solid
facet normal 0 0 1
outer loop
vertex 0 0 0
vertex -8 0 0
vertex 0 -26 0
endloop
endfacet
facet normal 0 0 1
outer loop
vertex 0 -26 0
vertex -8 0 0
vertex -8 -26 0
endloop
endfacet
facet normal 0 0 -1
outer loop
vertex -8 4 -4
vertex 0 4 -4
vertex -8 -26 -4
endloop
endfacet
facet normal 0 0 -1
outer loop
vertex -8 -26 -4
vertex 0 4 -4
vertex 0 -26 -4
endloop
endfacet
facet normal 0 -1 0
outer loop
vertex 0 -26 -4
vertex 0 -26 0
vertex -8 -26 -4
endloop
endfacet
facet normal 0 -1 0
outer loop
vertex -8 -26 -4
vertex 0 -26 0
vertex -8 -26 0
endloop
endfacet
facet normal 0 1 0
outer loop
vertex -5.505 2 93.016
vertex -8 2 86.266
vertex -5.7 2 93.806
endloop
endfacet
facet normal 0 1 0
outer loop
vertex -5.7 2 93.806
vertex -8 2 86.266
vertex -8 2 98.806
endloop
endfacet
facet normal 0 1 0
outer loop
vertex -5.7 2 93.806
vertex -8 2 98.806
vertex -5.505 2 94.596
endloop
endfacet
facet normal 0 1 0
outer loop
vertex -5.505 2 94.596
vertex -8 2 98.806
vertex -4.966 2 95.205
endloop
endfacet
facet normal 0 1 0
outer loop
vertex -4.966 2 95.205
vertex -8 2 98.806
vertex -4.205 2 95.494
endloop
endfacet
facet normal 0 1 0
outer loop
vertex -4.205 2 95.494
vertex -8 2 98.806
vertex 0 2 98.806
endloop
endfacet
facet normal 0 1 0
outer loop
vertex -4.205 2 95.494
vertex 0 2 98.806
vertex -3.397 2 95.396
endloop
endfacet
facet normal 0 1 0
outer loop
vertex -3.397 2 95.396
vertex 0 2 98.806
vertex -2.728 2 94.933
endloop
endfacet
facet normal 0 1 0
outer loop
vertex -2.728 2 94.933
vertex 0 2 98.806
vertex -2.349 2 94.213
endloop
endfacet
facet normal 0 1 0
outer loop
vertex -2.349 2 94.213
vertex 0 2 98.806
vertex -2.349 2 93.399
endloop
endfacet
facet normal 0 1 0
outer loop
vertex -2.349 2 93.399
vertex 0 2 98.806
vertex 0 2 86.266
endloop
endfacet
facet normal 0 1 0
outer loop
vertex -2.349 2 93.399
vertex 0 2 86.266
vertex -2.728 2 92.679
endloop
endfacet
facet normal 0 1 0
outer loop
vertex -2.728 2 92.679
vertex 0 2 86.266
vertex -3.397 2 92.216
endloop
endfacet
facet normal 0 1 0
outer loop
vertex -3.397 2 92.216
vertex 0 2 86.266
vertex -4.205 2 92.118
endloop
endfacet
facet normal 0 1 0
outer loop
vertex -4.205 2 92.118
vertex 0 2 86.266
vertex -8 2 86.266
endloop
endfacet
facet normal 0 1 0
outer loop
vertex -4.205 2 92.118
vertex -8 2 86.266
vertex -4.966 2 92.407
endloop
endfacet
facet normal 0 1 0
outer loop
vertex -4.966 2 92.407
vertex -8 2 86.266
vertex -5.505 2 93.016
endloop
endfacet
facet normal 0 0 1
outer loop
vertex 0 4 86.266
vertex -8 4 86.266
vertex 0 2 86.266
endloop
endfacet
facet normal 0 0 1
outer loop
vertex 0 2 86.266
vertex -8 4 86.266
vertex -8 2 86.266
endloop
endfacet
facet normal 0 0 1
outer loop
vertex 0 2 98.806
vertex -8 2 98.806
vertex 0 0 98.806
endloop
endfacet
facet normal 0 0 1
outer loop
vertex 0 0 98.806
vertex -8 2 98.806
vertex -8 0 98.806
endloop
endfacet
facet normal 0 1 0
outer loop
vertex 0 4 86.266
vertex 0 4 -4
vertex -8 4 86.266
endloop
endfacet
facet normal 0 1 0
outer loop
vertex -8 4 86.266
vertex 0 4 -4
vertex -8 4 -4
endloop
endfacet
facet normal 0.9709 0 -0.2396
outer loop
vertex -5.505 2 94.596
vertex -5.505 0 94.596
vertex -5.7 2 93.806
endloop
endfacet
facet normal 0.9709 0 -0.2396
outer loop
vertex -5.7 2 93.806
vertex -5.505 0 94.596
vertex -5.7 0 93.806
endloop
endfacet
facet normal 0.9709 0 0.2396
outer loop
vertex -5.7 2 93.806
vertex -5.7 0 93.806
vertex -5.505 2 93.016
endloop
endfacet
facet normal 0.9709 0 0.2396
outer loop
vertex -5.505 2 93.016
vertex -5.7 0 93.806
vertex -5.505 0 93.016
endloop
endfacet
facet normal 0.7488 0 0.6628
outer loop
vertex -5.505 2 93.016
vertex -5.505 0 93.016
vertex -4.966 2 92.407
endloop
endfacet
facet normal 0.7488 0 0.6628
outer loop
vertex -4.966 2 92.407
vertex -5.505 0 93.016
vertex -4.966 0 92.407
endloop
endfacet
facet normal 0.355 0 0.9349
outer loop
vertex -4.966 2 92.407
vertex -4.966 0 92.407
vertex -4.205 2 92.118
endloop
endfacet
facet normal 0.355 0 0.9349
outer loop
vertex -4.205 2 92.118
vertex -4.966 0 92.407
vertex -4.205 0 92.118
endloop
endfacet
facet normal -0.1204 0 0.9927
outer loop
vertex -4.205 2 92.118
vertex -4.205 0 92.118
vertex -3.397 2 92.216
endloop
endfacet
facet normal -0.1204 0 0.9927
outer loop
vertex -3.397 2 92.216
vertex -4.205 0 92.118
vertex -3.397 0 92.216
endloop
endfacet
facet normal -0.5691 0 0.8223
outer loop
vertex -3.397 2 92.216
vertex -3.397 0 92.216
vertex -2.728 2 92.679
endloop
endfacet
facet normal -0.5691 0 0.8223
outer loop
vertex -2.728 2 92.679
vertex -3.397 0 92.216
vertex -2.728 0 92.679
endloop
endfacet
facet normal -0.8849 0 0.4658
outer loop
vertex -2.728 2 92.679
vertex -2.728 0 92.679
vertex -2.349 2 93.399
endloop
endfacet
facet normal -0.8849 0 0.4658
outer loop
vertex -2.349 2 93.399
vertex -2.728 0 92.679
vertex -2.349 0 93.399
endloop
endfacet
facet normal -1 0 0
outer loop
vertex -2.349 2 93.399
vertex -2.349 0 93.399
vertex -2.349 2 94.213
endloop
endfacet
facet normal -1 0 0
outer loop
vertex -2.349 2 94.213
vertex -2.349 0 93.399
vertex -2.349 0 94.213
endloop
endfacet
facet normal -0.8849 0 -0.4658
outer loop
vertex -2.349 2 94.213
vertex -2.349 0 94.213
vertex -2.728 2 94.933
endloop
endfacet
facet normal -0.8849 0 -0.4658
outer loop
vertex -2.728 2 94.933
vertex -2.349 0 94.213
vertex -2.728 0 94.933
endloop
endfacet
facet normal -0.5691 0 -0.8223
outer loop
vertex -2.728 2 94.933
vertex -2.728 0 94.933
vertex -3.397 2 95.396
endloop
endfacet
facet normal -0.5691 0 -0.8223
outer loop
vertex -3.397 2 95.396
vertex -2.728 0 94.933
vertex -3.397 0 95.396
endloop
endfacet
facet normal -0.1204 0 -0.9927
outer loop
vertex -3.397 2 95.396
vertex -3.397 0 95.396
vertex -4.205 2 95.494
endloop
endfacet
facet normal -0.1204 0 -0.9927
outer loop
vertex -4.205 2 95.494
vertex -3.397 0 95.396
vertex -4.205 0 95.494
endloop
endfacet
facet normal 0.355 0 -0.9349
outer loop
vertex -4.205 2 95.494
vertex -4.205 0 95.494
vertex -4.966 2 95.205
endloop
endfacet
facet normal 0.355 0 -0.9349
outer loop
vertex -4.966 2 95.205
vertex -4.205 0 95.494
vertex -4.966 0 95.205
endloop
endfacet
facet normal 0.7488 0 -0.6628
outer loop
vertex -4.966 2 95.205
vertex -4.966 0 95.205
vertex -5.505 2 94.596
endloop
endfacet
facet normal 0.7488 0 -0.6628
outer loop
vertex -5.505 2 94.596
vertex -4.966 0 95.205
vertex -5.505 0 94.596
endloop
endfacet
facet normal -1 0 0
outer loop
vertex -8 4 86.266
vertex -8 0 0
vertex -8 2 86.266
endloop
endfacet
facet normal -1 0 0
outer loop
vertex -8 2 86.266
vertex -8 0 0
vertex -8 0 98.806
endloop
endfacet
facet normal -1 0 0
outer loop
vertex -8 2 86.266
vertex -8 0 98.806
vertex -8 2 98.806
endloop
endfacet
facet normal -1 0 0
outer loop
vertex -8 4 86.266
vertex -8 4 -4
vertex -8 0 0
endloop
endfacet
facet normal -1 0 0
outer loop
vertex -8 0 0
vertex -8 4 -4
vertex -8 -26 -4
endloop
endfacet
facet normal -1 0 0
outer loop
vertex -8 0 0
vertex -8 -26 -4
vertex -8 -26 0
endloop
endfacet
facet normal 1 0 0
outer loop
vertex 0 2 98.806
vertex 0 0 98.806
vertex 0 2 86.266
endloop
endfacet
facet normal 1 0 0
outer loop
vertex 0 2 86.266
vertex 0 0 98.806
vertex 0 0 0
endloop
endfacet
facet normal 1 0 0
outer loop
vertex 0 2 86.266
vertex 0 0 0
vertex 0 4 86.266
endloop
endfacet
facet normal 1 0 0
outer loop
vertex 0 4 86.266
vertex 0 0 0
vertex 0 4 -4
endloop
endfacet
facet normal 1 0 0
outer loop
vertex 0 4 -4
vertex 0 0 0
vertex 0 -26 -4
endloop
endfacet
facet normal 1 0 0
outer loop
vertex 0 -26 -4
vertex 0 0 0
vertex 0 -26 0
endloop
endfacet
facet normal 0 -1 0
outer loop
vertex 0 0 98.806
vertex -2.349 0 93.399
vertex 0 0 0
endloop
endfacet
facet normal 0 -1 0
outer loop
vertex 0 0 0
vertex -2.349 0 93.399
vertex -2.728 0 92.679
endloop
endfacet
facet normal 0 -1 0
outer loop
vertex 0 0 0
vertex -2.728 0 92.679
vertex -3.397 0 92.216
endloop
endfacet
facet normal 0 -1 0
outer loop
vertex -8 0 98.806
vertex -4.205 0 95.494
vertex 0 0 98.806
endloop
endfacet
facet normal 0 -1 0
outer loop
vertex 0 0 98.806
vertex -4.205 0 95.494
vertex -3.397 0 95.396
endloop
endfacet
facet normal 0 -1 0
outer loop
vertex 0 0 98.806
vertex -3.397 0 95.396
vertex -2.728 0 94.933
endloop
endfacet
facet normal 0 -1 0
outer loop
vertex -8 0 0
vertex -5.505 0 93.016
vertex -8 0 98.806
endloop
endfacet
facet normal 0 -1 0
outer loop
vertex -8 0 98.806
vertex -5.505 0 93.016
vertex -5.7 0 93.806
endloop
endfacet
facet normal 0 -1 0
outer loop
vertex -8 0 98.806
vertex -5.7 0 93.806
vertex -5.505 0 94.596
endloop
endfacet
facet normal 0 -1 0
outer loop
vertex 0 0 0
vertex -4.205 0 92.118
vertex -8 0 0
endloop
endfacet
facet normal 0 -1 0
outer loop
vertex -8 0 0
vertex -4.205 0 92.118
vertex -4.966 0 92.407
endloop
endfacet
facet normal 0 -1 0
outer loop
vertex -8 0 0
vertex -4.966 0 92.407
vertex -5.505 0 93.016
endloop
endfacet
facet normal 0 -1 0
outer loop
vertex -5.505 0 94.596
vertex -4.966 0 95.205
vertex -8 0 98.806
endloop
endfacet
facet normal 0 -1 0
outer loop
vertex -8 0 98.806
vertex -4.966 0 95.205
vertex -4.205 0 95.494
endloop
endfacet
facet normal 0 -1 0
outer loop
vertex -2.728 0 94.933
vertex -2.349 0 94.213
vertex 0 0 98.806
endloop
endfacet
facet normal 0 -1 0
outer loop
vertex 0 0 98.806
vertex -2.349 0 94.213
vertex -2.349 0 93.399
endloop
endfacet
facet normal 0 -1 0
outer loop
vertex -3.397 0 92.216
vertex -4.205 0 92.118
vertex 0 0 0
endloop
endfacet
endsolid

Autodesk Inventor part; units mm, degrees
ref_plane "YZ Plane" through (0, 0, 0) normal (1, 0, 0) x (0, 1, 0)
ref_plane "XZ Plane" through (0, 0, 0) normal (0, 1, 0) x (-1, 0, 0)
ref_plane "XY Plane" through (0, 0, 0) normal (0, 0, 1) x (1, 0, 0)
sketch "Sketch1" plane through (0, 0, 0) normal (0, 1, 0) x (-1, 0, 0)
  line L0 (0, 0) -> (8, 0)
  line L1 (8, 0) -> (8, 98.806)
  line L2 (8, 98.806) -> (0, 98.806)
  line L3 (0, 98.806) -> (0, 0)
  line L4 (4, 0) -> (4, 98.806)
  line L5 (4, 98.806) -> (4, 93.806)
  circle A0 centre (4, 93.806) radius 1.7
  dimension "d0" = 8
  dimension "d1" = 98.806
  dimension "d2" = 90
  dimension "d3" = 8
  dimension "d4" = 98.806
  dimension "d5" = 5
  dimension "d6" = 3.4
extrude "Extrusion1" add sketch "Sketch1" along normal blind 4 contours L3 L2 L4 A0 L0 | L4 A0 L2 L1 L0
sketch "Sketch2" plane through (-8, 0, 98.806) normal (0, 0, 1) x (1, 0, 0)
  line L0 (8, 4) -> (0, 4) projected
  line L1 (0, 4) -> (8, 4)
  line L2 (8, 4) -> (8, 2)
  line L3 (8, 2) -> (0, 2)
  line L4 (0, 2) -> (0, 4)
  point P0 (8, 0)
  dimension "d9" = 8
  dimension "d10" = 2
extrude "Extrusion2" cut sketch "Sketch2" against normal blind 12.54
sketch "Sketch3" plane through (0, 4, 0) normal (0, 1, 0) x (1, 0, 0)
  line L0 (0, 0) -> (-8, 0) projected
  line L1 (0, 0) -> (-8, 0)
  line L2 (-8, 0) -> (-8, 4)
  line L3 (-8, 4) -> (0, 4)
  line L4 (0, 4) -> (0, 0)
  dimension "d13" = 8
  dimension "d14" = 4
extrude "Extrusion3" add sketch "Sketch3" against normal blind 30
properties part number "brace1"
